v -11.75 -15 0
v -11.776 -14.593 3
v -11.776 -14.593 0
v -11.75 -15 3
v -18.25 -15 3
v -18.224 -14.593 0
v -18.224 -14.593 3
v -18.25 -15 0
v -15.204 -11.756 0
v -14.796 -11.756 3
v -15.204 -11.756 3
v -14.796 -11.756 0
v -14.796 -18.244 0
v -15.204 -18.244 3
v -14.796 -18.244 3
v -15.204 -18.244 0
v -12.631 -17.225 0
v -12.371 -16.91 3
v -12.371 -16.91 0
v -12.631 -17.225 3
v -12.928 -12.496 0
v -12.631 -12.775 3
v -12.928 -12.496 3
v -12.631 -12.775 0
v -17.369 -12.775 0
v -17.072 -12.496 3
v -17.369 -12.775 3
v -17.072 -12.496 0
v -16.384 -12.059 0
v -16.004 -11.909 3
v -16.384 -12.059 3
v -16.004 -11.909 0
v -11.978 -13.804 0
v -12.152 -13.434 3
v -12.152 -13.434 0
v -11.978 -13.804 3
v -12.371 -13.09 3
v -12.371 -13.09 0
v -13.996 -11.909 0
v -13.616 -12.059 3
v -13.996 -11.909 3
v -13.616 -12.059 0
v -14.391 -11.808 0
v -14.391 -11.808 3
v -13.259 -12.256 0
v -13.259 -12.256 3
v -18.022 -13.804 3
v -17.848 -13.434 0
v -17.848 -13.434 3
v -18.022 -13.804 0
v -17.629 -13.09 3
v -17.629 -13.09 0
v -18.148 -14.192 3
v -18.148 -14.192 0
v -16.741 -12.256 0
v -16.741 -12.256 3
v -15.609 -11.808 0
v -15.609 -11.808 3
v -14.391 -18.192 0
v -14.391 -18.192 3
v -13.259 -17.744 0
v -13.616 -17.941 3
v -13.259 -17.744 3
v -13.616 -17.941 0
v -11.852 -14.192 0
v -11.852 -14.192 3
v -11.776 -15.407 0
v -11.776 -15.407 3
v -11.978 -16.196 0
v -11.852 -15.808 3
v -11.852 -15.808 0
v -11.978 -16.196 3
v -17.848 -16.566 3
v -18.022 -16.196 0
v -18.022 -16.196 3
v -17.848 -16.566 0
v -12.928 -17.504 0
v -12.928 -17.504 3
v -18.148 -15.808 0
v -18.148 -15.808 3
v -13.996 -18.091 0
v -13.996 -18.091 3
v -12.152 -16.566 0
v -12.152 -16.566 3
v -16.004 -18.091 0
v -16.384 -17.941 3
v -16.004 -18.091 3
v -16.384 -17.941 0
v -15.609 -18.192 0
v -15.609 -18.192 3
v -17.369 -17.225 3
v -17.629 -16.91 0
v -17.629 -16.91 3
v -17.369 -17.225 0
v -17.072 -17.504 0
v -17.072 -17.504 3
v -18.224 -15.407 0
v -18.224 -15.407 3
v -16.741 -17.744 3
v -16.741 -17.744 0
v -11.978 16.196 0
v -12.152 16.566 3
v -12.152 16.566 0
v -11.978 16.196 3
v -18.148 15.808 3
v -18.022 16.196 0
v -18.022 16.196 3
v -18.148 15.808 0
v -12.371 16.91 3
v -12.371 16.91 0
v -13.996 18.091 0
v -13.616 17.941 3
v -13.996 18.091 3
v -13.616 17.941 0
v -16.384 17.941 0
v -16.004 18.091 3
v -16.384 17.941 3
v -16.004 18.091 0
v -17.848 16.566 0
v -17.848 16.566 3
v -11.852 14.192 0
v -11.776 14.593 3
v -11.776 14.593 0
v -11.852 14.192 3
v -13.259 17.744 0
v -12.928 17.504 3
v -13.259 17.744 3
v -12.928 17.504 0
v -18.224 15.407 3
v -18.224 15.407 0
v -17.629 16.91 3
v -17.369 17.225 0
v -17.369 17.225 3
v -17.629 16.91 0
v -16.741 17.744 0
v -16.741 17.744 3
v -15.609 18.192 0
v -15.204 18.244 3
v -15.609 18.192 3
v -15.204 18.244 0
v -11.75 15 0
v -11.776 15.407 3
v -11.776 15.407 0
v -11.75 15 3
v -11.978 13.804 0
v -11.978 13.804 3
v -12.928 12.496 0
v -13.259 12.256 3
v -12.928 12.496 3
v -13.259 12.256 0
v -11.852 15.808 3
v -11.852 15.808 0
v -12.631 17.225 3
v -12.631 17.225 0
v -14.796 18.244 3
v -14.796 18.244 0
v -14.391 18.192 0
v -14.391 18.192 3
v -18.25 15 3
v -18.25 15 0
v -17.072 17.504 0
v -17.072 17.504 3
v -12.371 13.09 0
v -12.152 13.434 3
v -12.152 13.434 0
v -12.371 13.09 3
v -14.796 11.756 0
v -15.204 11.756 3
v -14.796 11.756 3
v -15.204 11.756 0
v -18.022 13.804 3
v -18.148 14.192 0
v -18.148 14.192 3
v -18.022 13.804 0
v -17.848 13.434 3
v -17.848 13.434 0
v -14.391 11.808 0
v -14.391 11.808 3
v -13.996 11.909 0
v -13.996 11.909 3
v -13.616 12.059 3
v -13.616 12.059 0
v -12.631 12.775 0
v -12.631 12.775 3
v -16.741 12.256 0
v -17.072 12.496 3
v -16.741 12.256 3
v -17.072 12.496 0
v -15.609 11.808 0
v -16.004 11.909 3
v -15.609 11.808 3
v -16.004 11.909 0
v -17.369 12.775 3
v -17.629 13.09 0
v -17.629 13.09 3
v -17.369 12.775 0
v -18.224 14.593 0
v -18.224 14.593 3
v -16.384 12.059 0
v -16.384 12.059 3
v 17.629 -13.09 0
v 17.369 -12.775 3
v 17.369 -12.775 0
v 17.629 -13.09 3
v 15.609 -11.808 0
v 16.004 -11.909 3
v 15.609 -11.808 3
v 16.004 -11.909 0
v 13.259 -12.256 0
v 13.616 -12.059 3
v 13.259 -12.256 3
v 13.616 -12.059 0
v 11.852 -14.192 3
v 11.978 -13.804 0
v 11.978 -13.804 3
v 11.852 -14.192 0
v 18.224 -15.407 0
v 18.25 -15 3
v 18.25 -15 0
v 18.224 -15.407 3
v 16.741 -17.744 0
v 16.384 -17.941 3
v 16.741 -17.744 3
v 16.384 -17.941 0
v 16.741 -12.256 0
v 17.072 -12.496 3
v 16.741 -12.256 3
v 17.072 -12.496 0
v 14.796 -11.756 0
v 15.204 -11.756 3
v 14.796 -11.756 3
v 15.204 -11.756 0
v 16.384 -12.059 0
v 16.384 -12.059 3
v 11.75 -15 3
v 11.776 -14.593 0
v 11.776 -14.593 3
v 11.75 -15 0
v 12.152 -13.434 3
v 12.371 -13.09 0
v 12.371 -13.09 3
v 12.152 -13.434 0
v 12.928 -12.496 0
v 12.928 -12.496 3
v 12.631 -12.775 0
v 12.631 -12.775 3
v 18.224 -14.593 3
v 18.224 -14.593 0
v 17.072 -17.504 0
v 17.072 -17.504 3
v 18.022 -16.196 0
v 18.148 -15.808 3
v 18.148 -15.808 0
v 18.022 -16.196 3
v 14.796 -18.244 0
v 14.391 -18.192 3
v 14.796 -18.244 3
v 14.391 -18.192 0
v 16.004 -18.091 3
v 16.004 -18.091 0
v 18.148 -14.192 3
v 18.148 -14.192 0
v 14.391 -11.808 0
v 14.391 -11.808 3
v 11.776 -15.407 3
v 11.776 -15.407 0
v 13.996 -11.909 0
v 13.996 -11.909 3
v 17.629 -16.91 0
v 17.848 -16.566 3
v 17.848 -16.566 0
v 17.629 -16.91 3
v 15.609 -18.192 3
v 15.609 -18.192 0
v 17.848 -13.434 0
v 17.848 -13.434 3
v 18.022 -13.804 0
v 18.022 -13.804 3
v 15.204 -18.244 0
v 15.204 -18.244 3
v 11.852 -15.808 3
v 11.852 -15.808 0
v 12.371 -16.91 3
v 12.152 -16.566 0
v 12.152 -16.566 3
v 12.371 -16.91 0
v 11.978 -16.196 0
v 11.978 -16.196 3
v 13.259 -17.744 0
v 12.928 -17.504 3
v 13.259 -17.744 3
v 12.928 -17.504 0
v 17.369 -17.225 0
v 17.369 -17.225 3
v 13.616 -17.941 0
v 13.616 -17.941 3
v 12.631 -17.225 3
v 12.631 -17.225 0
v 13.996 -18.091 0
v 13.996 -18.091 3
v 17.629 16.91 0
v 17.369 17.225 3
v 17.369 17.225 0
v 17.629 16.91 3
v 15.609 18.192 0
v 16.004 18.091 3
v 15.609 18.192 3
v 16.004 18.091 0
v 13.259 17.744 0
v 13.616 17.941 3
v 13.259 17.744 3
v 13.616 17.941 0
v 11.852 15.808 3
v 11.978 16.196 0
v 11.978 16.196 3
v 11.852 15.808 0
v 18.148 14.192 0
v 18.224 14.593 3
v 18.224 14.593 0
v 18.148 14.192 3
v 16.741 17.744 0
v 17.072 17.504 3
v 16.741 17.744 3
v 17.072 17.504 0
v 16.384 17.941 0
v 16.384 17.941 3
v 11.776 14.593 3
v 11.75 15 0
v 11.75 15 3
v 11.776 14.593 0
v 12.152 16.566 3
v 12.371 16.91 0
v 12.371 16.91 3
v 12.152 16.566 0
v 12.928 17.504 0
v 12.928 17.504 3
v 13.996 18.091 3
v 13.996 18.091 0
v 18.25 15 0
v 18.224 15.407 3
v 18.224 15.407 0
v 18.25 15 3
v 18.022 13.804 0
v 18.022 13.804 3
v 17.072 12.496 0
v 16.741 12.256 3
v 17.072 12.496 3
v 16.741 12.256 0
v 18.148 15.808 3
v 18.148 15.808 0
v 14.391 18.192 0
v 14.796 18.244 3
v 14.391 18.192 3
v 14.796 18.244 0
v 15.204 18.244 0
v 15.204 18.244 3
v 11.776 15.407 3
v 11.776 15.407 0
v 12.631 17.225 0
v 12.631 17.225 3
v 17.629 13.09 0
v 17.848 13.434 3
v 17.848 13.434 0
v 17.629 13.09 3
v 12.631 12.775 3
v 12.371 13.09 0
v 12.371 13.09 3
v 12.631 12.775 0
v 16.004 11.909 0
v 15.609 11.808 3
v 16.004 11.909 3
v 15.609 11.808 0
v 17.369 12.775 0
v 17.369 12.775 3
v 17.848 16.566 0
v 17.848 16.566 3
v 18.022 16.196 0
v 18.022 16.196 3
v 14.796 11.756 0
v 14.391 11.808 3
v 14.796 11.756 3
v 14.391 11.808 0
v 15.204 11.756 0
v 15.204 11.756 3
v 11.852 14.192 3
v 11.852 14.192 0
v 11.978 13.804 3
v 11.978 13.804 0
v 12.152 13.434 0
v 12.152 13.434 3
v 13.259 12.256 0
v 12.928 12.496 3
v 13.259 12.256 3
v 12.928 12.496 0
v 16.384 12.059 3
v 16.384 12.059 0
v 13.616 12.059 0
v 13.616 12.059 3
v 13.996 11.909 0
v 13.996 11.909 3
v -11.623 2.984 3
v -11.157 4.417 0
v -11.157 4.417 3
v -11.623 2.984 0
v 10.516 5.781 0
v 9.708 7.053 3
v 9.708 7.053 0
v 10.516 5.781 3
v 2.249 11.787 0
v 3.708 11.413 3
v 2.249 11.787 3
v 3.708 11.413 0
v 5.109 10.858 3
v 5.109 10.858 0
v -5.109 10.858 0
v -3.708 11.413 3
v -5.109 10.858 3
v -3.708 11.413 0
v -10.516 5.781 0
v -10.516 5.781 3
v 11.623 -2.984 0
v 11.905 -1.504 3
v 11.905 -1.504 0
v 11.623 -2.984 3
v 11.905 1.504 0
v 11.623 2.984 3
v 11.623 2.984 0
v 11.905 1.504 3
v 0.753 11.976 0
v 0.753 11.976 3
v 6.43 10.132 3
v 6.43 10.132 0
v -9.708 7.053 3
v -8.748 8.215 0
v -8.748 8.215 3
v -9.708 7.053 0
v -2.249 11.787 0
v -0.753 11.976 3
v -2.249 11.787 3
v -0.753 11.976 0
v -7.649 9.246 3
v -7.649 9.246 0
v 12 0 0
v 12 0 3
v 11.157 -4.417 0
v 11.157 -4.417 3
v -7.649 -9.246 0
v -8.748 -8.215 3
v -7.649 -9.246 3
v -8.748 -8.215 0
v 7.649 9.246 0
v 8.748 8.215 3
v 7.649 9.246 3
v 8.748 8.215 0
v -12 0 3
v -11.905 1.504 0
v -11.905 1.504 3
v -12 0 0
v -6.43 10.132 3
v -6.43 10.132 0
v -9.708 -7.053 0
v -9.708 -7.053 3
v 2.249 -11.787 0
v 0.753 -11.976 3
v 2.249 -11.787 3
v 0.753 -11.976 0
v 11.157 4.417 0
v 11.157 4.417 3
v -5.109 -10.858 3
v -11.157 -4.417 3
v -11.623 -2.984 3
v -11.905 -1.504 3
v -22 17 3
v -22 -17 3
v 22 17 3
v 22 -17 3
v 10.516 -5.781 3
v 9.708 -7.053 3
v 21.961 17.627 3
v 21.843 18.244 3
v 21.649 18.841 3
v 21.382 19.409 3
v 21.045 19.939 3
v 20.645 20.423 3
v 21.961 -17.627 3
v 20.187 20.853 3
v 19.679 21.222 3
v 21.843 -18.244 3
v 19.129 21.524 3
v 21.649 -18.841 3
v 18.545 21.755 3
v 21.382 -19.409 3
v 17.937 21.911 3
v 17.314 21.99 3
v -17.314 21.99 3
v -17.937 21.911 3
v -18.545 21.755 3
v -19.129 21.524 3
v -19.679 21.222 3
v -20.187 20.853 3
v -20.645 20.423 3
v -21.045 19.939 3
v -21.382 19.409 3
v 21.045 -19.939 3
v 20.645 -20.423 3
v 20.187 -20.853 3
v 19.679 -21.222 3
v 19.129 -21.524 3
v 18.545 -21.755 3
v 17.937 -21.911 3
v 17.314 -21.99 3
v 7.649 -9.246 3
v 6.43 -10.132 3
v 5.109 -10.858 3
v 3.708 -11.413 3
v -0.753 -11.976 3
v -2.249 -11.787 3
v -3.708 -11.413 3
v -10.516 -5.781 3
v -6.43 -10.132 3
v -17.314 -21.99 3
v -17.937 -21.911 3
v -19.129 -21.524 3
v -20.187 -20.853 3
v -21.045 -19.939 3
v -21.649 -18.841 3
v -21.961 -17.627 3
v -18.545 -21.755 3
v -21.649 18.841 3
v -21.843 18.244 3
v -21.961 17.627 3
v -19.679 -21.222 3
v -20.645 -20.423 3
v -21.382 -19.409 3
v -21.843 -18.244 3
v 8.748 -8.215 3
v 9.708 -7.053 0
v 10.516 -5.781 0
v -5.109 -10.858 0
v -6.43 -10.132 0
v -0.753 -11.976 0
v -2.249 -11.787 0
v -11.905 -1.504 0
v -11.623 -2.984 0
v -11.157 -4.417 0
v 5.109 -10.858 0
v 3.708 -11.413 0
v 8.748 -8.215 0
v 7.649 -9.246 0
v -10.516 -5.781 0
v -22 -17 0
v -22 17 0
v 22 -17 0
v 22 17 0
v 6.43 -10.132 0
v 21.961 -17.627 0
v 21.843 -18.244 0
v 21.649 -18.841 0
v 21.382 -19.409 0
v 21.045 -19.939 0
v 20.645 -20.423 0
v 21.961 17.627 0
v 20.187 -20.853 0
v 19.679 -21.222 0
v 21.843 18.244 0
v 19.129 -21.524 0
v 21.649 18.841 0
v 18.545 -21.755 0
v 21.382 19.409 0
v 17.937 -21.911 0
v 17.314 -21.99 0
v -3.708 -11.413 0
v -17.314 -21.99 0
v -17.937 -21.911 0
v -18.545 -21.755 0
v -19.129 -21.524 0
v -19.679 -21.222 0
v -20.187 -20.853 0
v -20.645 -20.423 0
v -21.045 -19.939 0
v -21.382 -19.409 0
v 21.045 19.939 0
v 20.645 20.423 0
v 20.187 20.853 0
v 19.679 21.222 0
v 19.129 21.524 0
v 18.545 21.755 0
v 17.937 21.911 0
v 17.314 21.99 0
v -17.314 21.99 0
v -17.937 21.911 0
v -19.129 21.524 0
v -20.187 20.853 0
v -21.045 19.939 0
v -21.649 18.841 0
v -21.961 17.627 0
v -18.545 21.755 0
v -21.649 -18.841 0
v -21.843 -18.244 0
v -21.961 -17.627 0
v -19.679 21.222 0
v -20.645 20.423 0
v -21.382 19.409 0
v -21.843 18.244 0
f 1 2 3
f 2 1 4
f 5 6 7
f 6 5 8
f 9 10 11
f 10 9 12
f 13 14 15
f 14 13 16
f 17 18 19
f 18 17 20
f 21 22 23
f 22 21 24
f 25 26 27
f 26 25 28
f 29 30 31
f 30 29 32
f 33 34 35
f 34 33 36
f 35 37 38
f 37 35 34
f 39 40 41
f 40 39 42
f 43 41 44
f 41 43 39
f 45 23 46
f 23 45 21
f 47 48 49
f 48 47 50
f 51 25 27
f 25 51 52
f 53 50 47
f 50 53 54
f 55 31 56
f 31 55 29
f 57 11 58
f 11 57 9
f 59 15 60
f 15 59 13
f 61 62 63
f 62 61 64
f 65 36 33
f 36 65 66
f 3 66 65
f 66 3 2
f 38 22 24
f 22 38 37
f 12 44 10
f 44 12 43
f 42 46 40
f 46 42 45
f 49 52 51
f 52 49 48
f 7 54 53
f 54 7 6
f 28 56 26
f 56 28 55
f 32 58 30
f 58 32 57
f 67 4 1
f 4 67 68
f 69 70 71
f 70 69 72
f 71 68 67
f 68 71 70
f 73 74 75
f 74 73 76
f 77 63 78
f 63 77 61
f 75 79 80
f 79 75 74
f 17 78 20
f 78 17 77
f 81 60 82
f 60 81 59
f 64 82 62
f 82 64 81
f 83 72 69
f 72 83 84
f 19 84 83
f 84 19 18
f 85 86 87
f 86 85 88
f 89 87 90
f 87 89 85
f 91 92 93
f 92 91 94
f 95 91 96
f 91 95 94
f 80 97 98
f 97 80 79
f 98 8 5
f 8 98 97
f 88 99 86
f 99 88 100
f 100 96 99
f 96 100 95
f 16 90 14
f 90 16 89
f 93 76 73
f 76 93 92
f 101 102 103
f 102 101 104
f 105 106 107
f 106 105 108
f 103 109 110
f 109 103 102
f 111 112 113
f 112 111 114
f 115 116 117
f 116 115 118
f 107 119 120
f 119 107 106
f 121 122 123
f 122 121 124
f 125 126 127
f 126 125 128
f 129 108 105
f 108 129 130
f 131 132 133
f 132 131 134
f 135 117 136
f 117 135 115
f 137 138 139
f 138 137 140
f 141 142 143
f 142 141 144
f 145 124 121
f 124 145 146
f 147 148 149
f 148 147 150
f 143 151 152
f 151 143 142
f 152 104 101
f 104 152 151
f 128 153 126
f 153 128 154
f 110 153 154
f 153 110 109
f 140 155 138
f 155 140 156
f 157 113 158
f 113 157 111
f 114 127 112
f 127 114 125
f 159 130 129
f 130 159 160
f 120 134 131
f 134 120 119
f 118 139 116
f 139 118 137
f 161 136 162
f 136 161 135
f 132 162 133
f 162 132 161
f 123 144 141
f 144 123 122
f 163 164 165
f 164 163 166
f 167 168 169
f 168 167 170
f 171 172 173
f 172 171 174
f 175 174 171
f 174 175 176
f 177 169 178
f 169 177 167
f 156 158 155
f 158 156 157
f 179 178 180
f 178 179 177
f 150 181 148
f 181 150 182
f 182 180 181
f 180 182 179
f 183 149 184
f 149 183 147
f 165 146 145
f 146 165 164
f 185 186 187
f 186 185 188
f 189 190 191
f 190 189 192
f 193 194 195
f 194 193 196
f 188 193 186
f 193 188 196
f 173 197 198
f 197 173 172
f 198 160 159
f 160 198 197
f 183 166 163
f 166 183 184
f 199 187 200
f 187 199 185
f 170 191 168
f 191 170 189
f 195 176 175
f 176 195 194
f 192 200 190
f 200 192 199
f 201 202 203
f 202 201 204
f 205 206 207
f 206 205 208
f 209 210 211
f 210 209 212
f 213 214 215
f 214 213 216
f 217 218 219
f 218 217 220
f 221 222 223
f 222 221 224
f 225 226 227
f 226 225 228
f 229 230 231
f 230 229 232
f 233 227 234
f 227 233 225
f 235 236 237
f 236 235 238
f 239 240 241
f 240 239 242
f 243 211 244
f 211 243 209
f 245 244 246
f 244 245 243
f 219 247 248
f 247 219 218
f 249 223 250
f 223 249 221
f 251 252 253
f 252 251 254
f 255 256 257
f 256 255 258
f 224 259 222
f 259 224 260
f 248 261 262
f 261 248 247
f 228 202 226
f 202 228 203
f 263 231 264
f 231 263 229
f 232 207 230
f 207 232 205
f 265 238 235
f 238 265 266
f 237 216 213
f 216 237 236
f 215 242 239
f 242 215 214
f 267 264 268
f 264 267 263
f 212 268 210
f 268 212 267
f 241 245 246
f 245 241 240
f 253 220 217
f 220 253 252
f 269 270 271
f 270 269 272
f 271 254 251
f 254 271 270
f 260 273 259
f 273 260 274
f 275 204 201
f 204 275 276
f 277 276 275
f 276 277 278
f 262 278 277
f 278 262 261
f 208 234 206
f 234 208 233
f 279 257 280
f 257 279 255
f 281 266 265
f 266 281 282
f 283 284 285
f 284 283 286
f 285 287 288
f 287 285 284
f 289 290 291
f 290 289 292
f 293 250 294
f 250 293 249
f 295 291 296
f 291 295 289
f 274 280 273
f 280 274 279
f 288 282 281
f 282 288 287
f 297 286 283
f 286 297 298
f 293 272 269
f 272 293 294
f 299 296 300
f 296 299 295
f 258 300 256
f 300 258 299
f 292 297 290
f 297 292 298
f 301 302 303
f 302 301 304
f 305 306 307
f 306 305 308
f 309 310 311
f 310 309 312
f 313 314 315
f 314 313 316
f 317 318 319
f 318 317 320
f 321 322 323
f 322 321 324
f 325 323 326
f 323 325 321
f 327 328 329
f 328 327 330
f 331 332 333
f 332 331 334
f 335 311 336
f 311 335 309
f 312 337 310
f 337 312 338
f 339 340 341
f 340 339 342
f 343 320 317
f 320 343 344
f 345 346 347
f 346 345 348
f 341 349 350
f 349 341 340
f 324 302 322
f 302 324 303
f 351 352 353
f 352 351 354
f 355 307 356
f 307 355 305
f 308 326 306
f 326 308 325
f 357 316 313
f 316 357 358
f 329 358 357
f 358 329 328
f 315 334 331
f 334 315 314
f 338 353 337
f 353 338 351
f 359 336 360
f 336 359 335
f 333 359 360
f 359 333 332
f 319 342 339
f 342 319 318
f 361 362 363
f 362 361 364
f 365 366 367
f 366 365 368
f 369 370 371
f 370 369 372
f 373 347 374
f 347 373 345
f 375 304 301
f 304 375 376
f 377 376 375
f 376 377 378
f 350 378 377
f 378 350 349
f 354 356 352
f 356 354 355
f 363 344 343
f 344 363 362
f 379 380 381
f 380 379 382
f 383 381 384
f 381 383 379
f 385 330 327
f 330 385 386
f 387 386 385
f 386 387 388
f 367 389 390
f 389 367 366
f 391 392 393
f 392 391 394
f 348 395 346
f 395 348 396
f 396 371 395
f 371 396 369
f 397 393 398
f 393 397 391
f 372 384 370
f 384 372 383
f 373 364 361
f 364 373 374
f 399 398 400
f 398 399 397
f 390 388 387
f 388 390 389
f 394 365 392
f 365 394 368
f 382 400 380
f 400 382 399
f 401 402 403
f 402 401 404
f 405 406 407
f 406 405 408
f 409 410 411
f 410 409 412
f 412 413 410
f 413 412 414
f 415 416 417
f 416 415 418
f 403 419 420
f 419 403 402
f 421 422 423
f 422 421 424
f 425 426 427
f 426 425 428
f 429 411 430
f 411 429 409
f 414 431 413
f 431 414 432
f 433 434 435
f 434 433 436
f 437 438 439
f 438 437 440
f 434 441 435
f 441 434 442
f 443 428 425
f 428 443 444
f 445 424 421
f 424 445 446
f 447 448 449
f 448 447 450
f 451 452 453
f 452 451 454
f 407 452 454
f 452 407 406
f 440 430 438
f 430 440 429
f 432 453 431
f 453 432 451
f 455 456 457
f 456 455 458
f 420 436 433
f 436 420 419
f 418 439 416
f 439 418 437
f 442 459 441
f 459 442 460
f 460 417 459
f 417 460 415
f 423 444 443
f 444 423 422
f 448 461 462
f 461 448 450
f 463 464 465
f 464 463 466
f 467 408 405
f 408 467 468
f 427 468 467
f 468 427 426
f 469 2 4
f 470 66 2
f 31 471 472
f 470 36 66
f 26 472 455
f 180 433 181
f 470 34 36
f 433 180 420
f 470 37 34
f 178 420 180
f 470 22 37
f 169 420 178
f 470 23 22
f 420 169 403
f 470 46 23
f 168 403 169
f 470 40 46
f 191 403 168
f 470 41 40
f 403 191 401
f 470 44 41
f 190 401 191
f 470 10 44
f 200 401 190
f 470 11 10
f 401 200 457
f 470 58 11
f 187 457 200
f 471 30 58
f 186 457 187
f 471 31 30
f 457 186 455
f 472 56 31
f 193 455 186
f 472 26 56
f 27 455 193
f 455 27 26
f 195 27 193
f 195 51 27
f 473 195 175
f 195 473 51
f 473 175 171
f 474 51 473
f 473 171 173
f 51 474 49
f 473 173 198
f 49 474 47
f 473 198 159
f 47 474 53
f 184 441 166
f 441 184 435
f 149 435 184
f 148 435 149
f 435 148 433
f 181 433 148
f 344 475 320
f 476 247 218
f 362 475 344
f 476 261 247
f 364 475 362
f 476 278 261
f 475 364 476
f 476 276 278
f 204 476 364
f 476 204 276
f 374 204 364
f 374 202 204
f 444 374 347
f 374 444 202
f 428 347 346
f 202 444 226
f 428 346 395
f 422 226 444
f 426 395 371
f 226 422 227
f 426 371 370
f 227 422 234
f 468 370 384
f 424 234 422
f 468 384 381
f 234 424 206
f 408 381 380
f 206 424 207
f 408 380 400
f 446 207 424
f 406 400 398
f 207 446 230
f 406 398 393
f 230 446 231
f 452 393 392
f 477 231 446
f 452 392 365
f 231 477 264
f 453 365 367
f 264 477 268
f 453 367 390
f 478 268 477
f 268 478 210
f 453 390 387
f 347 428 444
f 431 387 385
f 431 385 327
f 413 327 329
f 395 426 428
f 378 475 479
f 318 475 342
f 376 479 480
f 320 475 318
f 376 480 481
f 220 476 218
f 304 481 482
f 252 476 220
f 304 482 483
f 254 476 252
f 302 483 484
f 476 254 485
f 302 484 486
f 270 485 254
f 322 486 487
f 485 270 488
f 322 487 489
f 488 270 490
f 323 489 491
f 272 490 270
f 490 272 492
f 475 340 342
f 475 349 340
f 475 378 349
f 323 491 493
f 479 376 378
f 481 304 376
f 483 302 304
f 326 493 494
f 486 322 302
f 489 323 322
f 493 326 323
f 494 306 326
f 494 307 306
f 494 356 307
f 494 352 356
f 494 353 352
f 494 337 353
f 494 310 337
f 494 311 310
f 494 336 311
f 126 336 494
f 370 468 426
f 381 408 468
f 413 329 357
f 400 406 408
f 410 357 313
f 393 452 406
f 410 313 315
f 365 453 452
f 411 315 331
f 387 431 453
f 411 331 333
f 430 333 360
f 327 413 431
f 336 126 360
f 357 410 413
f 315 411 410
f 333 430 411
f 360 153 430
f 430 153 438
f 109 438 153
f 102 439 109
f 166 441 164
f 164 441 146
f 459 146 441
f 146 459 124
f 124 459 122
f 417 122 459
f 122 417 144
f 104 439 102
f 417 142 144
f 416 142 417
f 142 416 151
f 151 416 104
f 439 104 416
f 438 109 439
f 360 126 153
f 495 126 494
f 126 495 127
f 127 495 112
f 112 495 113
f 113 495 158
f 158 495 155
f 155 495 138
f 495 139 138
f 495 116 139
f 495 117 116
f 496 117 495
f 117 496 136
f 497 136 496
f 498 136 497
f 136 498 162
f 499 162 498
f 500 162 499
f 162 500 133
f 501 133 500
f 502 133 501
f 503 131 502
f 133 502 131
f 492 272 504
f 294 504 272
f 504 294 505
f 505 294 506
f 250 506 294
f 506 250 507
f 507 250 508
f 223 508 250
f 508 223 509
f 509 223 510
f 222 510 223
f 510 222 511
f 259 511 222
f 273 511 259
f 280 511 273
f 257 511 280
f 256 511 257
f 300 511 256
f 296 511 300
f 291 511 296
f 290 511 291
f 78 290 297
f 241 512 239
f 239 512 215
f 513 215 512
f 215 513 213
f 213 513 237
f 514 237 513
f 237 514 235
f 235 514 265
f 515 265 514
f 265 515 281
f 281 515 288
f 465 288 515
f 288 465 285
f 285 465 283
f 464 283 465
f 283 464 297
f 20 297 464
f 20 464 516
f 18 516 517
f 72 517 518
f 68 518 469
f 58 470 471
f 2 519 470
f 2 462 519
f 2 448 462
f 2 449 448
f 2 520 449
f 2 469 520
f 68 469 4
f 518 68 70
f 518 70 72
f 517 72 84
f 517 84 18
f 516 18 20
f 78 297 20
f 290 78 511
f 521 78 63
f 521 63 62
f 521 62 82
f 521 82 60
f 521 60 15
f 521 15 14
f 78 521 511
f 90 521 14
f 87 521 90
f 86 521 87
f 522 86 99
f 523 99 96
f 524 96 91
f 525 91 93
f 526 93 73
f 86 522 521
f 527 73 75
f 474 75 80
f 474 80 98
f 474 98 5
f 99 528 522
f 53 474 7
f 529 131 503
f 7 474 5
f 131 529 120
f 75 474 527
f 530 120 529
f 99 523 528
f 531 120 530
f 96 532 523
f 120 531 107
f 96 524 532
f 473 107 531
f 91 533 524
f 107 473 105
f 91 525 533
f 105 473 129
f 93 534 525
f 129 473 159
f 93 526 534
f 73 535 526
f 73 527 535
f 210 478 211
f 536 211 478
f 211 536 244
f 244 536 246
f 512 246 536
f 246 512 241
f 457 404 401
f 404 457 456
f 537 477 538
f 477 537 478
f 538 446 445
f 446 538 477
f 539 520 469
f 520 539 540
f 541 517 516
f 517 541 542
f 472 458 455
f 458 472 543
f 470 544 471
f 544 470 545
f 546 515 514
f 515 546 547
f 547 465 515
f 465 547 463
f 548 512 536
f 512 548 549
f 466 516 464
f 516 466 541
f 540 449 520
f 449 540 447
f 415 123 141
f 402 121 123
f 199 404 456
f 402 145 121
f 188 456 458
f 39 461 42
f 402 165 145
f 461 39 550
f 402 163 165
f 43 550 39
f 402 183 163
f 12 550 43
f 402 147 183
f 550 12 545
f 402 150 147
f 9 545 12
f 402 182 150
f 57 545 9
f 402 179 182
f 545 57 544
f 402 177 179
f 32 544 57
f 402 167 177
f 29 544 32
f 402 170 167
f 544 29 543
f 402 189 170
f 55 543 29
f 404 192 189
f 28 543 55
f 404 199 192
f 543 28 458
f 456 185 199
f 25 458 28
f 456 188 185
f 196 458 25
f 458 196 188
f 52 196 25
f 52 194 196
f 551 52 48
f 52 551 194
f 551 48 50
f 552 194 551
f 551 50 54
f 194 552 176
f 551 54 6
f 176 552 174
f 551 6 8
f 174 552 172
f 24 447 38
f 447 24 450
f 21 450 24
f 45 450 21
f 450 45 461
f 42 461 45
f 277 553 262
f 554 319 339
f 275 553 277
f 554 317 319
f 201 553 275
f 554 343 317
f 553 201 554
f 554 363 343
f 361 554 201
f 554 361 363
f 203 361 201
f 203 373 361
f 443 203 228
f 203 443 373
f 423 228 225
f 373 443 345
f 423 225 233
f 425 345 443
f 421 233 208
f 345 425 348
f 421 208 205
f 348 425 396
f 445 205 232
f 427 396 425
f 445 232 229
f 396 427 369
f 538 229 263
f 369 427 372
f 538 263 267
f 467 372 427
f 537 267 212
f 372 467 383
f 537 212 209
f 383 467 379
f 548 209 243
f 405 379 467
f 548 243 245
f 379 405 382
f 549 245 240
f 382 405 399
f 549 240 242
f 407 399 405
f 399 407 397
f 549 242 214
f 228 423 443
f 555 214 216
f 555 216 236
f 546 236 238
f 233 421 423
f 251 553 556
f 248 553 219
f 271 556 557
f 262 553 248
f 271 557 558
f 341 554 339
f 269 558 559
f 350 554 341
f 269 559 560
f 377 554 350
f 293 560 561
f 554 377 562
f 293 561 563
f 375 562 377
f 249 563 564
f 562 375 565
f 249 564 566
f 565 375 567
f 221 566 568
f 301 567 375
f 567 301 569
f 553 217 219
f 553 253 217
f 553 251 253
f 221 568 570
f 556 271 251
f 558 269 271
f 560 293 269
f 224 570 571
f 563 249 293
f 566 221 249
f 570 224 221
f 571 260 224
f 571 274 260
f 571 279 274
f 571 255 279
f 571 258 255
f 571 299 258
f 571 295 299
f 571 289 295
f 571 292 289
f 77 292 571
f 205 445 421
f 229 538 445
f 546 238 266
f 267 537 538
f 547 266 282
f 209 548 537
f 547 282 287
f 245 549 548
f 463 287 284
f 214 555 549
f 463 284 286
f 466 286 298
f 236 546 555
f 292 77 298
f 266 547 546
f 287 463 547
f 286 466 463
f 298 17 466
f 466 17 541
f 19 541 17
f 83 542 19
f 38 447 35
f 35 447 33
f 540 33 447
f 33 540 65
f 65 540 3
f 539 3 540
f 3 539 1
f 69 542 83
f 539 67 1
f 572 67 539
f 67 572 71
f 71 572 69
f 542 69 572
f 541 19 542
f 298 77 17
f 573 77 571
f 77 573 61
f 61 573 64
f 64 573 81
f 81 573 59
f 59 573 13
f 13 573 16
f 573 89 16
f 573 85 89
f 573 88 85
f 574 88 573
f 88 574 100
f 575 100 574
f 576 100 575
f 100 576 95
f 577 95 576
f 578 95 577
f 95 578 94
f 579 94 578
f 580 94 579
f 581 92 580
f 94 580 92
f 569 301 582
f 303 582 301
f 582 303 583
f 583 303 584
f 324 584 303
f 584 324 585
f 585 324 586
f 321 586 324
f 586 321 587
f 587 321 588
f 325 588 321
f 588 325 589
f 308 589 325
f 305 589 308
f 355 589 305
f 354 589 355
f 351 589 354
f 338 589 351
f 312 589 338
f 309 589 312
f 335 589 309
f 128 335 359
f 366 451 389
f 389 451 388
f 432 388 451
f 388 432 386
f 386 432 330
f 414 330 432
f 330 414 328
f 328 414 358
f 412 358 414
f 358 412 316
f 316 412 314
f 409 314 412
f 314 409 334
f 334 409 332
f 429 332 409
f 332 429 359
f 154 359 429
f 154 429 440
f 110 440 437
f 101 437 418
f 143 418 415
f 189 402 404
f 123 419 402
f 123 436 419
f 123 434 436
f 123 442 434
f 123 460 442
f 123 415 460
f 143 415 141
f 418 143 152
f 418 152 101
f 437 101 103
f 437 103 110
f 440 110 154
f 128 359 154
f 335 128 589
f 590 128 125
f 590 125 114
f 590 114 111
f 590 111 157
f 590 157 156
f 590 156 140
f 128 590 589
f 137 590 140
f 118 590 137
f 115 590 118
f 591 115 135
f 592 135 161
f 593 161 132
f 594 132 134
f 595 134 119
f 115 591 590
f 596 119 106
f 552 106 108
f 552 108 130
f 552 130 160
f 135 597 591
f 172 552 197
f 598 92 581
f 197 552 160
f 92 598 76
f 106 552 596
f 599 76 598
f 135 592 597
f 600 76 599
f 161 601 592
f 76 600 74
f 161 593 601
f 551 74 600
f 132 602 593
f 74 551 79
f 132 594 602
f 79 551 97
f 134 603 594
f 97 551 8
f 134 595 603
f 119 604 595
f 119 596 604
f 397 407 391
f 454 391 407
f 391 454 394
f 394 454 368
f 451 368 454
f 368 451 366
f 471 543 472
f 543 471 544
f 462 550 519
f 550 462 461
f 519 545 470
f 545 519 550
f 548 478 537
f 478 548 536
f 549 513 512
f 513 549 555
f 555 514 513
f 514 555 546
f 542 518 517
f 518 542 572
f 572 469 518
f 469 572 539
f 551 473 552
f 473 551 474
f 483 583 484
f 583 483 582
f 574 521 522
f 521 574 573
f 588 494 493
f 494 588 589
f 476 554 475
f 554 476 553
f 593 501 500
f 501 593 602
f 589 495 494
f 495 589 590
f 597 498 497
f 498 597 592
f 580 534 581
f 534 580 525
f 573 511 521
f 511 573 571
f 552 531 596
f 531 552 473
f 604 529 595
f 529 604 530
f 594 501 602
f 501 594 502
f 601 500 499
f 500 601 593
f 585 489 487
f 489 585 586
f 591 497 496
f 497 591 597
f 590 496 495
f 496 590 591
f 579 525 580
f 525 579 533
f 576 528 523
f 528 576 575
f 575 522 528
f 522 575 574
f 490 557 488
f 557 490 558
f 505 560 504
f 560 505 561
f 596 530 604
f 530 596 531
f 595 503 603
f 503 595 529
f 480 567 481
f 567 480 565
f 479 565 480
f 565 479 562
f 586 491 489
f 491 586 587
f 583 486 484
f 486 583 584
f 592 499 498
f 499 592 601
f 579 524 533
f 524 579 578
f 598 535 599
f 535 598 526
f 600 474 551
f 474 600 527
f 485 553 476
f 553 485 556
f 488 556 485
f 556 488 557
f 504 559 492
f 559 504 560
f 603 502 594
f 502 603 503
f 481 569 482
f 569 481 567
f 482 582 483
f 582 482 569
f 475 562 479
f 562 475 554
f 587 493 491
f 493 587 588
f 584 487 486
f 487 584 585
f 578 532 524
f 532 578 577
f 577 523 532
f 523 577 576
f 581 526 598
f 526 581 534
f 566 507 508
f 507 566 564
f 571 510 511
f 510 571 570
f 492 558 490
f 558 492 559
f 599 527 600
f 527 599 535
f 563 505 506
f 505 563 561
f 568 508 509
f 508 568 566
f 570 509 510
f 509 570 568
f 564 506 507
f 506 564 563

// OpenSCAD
$fn = 50;


difference() {
	union() {
		hull() {
			translate(v = [-17.0000000000, 17.0000000000, 0]) {
				cylinder(h = 3, r = 5);
			}
			translate(v = [17.0000000000, 17.0000000000, 0]) {
				cylinder(h = 3, r = 5);
			}
			translate(v = [-17.0000000000, -17.0000000000, 0]) {
				cylinder(h = 3, r = 5);
			}
			translate(v = [17.0000000000, -17.0000000000, 0]) {
				cylinder(h = 3, r = 5);
			}
		}
	}
	union() {
		#translate(v = [-15.0000000000, -15.0000000000, -100.0000000000]) {
			cylinder(h = 200, r = 3.2500000000);
		}
		#translate(v = [-15.0000000000, 15.0000000000, -100.0000000000]) {
			cylinder(h = 200, r = 3.2500000000);
		}
		#translate(v = [15.0000000000, -15.0000000000, -100.0000000000]) {
			cylinder(h = 200, r = 3.2500000000);
		}
		#translate(v = [15.0000000000, 15.0000000000, -100.0000000000]) {
			cylinder(h = 200, r = 3.2500000000);
		}
		#cylinder(h = 3, r = 12.0000000000);
	}
}
